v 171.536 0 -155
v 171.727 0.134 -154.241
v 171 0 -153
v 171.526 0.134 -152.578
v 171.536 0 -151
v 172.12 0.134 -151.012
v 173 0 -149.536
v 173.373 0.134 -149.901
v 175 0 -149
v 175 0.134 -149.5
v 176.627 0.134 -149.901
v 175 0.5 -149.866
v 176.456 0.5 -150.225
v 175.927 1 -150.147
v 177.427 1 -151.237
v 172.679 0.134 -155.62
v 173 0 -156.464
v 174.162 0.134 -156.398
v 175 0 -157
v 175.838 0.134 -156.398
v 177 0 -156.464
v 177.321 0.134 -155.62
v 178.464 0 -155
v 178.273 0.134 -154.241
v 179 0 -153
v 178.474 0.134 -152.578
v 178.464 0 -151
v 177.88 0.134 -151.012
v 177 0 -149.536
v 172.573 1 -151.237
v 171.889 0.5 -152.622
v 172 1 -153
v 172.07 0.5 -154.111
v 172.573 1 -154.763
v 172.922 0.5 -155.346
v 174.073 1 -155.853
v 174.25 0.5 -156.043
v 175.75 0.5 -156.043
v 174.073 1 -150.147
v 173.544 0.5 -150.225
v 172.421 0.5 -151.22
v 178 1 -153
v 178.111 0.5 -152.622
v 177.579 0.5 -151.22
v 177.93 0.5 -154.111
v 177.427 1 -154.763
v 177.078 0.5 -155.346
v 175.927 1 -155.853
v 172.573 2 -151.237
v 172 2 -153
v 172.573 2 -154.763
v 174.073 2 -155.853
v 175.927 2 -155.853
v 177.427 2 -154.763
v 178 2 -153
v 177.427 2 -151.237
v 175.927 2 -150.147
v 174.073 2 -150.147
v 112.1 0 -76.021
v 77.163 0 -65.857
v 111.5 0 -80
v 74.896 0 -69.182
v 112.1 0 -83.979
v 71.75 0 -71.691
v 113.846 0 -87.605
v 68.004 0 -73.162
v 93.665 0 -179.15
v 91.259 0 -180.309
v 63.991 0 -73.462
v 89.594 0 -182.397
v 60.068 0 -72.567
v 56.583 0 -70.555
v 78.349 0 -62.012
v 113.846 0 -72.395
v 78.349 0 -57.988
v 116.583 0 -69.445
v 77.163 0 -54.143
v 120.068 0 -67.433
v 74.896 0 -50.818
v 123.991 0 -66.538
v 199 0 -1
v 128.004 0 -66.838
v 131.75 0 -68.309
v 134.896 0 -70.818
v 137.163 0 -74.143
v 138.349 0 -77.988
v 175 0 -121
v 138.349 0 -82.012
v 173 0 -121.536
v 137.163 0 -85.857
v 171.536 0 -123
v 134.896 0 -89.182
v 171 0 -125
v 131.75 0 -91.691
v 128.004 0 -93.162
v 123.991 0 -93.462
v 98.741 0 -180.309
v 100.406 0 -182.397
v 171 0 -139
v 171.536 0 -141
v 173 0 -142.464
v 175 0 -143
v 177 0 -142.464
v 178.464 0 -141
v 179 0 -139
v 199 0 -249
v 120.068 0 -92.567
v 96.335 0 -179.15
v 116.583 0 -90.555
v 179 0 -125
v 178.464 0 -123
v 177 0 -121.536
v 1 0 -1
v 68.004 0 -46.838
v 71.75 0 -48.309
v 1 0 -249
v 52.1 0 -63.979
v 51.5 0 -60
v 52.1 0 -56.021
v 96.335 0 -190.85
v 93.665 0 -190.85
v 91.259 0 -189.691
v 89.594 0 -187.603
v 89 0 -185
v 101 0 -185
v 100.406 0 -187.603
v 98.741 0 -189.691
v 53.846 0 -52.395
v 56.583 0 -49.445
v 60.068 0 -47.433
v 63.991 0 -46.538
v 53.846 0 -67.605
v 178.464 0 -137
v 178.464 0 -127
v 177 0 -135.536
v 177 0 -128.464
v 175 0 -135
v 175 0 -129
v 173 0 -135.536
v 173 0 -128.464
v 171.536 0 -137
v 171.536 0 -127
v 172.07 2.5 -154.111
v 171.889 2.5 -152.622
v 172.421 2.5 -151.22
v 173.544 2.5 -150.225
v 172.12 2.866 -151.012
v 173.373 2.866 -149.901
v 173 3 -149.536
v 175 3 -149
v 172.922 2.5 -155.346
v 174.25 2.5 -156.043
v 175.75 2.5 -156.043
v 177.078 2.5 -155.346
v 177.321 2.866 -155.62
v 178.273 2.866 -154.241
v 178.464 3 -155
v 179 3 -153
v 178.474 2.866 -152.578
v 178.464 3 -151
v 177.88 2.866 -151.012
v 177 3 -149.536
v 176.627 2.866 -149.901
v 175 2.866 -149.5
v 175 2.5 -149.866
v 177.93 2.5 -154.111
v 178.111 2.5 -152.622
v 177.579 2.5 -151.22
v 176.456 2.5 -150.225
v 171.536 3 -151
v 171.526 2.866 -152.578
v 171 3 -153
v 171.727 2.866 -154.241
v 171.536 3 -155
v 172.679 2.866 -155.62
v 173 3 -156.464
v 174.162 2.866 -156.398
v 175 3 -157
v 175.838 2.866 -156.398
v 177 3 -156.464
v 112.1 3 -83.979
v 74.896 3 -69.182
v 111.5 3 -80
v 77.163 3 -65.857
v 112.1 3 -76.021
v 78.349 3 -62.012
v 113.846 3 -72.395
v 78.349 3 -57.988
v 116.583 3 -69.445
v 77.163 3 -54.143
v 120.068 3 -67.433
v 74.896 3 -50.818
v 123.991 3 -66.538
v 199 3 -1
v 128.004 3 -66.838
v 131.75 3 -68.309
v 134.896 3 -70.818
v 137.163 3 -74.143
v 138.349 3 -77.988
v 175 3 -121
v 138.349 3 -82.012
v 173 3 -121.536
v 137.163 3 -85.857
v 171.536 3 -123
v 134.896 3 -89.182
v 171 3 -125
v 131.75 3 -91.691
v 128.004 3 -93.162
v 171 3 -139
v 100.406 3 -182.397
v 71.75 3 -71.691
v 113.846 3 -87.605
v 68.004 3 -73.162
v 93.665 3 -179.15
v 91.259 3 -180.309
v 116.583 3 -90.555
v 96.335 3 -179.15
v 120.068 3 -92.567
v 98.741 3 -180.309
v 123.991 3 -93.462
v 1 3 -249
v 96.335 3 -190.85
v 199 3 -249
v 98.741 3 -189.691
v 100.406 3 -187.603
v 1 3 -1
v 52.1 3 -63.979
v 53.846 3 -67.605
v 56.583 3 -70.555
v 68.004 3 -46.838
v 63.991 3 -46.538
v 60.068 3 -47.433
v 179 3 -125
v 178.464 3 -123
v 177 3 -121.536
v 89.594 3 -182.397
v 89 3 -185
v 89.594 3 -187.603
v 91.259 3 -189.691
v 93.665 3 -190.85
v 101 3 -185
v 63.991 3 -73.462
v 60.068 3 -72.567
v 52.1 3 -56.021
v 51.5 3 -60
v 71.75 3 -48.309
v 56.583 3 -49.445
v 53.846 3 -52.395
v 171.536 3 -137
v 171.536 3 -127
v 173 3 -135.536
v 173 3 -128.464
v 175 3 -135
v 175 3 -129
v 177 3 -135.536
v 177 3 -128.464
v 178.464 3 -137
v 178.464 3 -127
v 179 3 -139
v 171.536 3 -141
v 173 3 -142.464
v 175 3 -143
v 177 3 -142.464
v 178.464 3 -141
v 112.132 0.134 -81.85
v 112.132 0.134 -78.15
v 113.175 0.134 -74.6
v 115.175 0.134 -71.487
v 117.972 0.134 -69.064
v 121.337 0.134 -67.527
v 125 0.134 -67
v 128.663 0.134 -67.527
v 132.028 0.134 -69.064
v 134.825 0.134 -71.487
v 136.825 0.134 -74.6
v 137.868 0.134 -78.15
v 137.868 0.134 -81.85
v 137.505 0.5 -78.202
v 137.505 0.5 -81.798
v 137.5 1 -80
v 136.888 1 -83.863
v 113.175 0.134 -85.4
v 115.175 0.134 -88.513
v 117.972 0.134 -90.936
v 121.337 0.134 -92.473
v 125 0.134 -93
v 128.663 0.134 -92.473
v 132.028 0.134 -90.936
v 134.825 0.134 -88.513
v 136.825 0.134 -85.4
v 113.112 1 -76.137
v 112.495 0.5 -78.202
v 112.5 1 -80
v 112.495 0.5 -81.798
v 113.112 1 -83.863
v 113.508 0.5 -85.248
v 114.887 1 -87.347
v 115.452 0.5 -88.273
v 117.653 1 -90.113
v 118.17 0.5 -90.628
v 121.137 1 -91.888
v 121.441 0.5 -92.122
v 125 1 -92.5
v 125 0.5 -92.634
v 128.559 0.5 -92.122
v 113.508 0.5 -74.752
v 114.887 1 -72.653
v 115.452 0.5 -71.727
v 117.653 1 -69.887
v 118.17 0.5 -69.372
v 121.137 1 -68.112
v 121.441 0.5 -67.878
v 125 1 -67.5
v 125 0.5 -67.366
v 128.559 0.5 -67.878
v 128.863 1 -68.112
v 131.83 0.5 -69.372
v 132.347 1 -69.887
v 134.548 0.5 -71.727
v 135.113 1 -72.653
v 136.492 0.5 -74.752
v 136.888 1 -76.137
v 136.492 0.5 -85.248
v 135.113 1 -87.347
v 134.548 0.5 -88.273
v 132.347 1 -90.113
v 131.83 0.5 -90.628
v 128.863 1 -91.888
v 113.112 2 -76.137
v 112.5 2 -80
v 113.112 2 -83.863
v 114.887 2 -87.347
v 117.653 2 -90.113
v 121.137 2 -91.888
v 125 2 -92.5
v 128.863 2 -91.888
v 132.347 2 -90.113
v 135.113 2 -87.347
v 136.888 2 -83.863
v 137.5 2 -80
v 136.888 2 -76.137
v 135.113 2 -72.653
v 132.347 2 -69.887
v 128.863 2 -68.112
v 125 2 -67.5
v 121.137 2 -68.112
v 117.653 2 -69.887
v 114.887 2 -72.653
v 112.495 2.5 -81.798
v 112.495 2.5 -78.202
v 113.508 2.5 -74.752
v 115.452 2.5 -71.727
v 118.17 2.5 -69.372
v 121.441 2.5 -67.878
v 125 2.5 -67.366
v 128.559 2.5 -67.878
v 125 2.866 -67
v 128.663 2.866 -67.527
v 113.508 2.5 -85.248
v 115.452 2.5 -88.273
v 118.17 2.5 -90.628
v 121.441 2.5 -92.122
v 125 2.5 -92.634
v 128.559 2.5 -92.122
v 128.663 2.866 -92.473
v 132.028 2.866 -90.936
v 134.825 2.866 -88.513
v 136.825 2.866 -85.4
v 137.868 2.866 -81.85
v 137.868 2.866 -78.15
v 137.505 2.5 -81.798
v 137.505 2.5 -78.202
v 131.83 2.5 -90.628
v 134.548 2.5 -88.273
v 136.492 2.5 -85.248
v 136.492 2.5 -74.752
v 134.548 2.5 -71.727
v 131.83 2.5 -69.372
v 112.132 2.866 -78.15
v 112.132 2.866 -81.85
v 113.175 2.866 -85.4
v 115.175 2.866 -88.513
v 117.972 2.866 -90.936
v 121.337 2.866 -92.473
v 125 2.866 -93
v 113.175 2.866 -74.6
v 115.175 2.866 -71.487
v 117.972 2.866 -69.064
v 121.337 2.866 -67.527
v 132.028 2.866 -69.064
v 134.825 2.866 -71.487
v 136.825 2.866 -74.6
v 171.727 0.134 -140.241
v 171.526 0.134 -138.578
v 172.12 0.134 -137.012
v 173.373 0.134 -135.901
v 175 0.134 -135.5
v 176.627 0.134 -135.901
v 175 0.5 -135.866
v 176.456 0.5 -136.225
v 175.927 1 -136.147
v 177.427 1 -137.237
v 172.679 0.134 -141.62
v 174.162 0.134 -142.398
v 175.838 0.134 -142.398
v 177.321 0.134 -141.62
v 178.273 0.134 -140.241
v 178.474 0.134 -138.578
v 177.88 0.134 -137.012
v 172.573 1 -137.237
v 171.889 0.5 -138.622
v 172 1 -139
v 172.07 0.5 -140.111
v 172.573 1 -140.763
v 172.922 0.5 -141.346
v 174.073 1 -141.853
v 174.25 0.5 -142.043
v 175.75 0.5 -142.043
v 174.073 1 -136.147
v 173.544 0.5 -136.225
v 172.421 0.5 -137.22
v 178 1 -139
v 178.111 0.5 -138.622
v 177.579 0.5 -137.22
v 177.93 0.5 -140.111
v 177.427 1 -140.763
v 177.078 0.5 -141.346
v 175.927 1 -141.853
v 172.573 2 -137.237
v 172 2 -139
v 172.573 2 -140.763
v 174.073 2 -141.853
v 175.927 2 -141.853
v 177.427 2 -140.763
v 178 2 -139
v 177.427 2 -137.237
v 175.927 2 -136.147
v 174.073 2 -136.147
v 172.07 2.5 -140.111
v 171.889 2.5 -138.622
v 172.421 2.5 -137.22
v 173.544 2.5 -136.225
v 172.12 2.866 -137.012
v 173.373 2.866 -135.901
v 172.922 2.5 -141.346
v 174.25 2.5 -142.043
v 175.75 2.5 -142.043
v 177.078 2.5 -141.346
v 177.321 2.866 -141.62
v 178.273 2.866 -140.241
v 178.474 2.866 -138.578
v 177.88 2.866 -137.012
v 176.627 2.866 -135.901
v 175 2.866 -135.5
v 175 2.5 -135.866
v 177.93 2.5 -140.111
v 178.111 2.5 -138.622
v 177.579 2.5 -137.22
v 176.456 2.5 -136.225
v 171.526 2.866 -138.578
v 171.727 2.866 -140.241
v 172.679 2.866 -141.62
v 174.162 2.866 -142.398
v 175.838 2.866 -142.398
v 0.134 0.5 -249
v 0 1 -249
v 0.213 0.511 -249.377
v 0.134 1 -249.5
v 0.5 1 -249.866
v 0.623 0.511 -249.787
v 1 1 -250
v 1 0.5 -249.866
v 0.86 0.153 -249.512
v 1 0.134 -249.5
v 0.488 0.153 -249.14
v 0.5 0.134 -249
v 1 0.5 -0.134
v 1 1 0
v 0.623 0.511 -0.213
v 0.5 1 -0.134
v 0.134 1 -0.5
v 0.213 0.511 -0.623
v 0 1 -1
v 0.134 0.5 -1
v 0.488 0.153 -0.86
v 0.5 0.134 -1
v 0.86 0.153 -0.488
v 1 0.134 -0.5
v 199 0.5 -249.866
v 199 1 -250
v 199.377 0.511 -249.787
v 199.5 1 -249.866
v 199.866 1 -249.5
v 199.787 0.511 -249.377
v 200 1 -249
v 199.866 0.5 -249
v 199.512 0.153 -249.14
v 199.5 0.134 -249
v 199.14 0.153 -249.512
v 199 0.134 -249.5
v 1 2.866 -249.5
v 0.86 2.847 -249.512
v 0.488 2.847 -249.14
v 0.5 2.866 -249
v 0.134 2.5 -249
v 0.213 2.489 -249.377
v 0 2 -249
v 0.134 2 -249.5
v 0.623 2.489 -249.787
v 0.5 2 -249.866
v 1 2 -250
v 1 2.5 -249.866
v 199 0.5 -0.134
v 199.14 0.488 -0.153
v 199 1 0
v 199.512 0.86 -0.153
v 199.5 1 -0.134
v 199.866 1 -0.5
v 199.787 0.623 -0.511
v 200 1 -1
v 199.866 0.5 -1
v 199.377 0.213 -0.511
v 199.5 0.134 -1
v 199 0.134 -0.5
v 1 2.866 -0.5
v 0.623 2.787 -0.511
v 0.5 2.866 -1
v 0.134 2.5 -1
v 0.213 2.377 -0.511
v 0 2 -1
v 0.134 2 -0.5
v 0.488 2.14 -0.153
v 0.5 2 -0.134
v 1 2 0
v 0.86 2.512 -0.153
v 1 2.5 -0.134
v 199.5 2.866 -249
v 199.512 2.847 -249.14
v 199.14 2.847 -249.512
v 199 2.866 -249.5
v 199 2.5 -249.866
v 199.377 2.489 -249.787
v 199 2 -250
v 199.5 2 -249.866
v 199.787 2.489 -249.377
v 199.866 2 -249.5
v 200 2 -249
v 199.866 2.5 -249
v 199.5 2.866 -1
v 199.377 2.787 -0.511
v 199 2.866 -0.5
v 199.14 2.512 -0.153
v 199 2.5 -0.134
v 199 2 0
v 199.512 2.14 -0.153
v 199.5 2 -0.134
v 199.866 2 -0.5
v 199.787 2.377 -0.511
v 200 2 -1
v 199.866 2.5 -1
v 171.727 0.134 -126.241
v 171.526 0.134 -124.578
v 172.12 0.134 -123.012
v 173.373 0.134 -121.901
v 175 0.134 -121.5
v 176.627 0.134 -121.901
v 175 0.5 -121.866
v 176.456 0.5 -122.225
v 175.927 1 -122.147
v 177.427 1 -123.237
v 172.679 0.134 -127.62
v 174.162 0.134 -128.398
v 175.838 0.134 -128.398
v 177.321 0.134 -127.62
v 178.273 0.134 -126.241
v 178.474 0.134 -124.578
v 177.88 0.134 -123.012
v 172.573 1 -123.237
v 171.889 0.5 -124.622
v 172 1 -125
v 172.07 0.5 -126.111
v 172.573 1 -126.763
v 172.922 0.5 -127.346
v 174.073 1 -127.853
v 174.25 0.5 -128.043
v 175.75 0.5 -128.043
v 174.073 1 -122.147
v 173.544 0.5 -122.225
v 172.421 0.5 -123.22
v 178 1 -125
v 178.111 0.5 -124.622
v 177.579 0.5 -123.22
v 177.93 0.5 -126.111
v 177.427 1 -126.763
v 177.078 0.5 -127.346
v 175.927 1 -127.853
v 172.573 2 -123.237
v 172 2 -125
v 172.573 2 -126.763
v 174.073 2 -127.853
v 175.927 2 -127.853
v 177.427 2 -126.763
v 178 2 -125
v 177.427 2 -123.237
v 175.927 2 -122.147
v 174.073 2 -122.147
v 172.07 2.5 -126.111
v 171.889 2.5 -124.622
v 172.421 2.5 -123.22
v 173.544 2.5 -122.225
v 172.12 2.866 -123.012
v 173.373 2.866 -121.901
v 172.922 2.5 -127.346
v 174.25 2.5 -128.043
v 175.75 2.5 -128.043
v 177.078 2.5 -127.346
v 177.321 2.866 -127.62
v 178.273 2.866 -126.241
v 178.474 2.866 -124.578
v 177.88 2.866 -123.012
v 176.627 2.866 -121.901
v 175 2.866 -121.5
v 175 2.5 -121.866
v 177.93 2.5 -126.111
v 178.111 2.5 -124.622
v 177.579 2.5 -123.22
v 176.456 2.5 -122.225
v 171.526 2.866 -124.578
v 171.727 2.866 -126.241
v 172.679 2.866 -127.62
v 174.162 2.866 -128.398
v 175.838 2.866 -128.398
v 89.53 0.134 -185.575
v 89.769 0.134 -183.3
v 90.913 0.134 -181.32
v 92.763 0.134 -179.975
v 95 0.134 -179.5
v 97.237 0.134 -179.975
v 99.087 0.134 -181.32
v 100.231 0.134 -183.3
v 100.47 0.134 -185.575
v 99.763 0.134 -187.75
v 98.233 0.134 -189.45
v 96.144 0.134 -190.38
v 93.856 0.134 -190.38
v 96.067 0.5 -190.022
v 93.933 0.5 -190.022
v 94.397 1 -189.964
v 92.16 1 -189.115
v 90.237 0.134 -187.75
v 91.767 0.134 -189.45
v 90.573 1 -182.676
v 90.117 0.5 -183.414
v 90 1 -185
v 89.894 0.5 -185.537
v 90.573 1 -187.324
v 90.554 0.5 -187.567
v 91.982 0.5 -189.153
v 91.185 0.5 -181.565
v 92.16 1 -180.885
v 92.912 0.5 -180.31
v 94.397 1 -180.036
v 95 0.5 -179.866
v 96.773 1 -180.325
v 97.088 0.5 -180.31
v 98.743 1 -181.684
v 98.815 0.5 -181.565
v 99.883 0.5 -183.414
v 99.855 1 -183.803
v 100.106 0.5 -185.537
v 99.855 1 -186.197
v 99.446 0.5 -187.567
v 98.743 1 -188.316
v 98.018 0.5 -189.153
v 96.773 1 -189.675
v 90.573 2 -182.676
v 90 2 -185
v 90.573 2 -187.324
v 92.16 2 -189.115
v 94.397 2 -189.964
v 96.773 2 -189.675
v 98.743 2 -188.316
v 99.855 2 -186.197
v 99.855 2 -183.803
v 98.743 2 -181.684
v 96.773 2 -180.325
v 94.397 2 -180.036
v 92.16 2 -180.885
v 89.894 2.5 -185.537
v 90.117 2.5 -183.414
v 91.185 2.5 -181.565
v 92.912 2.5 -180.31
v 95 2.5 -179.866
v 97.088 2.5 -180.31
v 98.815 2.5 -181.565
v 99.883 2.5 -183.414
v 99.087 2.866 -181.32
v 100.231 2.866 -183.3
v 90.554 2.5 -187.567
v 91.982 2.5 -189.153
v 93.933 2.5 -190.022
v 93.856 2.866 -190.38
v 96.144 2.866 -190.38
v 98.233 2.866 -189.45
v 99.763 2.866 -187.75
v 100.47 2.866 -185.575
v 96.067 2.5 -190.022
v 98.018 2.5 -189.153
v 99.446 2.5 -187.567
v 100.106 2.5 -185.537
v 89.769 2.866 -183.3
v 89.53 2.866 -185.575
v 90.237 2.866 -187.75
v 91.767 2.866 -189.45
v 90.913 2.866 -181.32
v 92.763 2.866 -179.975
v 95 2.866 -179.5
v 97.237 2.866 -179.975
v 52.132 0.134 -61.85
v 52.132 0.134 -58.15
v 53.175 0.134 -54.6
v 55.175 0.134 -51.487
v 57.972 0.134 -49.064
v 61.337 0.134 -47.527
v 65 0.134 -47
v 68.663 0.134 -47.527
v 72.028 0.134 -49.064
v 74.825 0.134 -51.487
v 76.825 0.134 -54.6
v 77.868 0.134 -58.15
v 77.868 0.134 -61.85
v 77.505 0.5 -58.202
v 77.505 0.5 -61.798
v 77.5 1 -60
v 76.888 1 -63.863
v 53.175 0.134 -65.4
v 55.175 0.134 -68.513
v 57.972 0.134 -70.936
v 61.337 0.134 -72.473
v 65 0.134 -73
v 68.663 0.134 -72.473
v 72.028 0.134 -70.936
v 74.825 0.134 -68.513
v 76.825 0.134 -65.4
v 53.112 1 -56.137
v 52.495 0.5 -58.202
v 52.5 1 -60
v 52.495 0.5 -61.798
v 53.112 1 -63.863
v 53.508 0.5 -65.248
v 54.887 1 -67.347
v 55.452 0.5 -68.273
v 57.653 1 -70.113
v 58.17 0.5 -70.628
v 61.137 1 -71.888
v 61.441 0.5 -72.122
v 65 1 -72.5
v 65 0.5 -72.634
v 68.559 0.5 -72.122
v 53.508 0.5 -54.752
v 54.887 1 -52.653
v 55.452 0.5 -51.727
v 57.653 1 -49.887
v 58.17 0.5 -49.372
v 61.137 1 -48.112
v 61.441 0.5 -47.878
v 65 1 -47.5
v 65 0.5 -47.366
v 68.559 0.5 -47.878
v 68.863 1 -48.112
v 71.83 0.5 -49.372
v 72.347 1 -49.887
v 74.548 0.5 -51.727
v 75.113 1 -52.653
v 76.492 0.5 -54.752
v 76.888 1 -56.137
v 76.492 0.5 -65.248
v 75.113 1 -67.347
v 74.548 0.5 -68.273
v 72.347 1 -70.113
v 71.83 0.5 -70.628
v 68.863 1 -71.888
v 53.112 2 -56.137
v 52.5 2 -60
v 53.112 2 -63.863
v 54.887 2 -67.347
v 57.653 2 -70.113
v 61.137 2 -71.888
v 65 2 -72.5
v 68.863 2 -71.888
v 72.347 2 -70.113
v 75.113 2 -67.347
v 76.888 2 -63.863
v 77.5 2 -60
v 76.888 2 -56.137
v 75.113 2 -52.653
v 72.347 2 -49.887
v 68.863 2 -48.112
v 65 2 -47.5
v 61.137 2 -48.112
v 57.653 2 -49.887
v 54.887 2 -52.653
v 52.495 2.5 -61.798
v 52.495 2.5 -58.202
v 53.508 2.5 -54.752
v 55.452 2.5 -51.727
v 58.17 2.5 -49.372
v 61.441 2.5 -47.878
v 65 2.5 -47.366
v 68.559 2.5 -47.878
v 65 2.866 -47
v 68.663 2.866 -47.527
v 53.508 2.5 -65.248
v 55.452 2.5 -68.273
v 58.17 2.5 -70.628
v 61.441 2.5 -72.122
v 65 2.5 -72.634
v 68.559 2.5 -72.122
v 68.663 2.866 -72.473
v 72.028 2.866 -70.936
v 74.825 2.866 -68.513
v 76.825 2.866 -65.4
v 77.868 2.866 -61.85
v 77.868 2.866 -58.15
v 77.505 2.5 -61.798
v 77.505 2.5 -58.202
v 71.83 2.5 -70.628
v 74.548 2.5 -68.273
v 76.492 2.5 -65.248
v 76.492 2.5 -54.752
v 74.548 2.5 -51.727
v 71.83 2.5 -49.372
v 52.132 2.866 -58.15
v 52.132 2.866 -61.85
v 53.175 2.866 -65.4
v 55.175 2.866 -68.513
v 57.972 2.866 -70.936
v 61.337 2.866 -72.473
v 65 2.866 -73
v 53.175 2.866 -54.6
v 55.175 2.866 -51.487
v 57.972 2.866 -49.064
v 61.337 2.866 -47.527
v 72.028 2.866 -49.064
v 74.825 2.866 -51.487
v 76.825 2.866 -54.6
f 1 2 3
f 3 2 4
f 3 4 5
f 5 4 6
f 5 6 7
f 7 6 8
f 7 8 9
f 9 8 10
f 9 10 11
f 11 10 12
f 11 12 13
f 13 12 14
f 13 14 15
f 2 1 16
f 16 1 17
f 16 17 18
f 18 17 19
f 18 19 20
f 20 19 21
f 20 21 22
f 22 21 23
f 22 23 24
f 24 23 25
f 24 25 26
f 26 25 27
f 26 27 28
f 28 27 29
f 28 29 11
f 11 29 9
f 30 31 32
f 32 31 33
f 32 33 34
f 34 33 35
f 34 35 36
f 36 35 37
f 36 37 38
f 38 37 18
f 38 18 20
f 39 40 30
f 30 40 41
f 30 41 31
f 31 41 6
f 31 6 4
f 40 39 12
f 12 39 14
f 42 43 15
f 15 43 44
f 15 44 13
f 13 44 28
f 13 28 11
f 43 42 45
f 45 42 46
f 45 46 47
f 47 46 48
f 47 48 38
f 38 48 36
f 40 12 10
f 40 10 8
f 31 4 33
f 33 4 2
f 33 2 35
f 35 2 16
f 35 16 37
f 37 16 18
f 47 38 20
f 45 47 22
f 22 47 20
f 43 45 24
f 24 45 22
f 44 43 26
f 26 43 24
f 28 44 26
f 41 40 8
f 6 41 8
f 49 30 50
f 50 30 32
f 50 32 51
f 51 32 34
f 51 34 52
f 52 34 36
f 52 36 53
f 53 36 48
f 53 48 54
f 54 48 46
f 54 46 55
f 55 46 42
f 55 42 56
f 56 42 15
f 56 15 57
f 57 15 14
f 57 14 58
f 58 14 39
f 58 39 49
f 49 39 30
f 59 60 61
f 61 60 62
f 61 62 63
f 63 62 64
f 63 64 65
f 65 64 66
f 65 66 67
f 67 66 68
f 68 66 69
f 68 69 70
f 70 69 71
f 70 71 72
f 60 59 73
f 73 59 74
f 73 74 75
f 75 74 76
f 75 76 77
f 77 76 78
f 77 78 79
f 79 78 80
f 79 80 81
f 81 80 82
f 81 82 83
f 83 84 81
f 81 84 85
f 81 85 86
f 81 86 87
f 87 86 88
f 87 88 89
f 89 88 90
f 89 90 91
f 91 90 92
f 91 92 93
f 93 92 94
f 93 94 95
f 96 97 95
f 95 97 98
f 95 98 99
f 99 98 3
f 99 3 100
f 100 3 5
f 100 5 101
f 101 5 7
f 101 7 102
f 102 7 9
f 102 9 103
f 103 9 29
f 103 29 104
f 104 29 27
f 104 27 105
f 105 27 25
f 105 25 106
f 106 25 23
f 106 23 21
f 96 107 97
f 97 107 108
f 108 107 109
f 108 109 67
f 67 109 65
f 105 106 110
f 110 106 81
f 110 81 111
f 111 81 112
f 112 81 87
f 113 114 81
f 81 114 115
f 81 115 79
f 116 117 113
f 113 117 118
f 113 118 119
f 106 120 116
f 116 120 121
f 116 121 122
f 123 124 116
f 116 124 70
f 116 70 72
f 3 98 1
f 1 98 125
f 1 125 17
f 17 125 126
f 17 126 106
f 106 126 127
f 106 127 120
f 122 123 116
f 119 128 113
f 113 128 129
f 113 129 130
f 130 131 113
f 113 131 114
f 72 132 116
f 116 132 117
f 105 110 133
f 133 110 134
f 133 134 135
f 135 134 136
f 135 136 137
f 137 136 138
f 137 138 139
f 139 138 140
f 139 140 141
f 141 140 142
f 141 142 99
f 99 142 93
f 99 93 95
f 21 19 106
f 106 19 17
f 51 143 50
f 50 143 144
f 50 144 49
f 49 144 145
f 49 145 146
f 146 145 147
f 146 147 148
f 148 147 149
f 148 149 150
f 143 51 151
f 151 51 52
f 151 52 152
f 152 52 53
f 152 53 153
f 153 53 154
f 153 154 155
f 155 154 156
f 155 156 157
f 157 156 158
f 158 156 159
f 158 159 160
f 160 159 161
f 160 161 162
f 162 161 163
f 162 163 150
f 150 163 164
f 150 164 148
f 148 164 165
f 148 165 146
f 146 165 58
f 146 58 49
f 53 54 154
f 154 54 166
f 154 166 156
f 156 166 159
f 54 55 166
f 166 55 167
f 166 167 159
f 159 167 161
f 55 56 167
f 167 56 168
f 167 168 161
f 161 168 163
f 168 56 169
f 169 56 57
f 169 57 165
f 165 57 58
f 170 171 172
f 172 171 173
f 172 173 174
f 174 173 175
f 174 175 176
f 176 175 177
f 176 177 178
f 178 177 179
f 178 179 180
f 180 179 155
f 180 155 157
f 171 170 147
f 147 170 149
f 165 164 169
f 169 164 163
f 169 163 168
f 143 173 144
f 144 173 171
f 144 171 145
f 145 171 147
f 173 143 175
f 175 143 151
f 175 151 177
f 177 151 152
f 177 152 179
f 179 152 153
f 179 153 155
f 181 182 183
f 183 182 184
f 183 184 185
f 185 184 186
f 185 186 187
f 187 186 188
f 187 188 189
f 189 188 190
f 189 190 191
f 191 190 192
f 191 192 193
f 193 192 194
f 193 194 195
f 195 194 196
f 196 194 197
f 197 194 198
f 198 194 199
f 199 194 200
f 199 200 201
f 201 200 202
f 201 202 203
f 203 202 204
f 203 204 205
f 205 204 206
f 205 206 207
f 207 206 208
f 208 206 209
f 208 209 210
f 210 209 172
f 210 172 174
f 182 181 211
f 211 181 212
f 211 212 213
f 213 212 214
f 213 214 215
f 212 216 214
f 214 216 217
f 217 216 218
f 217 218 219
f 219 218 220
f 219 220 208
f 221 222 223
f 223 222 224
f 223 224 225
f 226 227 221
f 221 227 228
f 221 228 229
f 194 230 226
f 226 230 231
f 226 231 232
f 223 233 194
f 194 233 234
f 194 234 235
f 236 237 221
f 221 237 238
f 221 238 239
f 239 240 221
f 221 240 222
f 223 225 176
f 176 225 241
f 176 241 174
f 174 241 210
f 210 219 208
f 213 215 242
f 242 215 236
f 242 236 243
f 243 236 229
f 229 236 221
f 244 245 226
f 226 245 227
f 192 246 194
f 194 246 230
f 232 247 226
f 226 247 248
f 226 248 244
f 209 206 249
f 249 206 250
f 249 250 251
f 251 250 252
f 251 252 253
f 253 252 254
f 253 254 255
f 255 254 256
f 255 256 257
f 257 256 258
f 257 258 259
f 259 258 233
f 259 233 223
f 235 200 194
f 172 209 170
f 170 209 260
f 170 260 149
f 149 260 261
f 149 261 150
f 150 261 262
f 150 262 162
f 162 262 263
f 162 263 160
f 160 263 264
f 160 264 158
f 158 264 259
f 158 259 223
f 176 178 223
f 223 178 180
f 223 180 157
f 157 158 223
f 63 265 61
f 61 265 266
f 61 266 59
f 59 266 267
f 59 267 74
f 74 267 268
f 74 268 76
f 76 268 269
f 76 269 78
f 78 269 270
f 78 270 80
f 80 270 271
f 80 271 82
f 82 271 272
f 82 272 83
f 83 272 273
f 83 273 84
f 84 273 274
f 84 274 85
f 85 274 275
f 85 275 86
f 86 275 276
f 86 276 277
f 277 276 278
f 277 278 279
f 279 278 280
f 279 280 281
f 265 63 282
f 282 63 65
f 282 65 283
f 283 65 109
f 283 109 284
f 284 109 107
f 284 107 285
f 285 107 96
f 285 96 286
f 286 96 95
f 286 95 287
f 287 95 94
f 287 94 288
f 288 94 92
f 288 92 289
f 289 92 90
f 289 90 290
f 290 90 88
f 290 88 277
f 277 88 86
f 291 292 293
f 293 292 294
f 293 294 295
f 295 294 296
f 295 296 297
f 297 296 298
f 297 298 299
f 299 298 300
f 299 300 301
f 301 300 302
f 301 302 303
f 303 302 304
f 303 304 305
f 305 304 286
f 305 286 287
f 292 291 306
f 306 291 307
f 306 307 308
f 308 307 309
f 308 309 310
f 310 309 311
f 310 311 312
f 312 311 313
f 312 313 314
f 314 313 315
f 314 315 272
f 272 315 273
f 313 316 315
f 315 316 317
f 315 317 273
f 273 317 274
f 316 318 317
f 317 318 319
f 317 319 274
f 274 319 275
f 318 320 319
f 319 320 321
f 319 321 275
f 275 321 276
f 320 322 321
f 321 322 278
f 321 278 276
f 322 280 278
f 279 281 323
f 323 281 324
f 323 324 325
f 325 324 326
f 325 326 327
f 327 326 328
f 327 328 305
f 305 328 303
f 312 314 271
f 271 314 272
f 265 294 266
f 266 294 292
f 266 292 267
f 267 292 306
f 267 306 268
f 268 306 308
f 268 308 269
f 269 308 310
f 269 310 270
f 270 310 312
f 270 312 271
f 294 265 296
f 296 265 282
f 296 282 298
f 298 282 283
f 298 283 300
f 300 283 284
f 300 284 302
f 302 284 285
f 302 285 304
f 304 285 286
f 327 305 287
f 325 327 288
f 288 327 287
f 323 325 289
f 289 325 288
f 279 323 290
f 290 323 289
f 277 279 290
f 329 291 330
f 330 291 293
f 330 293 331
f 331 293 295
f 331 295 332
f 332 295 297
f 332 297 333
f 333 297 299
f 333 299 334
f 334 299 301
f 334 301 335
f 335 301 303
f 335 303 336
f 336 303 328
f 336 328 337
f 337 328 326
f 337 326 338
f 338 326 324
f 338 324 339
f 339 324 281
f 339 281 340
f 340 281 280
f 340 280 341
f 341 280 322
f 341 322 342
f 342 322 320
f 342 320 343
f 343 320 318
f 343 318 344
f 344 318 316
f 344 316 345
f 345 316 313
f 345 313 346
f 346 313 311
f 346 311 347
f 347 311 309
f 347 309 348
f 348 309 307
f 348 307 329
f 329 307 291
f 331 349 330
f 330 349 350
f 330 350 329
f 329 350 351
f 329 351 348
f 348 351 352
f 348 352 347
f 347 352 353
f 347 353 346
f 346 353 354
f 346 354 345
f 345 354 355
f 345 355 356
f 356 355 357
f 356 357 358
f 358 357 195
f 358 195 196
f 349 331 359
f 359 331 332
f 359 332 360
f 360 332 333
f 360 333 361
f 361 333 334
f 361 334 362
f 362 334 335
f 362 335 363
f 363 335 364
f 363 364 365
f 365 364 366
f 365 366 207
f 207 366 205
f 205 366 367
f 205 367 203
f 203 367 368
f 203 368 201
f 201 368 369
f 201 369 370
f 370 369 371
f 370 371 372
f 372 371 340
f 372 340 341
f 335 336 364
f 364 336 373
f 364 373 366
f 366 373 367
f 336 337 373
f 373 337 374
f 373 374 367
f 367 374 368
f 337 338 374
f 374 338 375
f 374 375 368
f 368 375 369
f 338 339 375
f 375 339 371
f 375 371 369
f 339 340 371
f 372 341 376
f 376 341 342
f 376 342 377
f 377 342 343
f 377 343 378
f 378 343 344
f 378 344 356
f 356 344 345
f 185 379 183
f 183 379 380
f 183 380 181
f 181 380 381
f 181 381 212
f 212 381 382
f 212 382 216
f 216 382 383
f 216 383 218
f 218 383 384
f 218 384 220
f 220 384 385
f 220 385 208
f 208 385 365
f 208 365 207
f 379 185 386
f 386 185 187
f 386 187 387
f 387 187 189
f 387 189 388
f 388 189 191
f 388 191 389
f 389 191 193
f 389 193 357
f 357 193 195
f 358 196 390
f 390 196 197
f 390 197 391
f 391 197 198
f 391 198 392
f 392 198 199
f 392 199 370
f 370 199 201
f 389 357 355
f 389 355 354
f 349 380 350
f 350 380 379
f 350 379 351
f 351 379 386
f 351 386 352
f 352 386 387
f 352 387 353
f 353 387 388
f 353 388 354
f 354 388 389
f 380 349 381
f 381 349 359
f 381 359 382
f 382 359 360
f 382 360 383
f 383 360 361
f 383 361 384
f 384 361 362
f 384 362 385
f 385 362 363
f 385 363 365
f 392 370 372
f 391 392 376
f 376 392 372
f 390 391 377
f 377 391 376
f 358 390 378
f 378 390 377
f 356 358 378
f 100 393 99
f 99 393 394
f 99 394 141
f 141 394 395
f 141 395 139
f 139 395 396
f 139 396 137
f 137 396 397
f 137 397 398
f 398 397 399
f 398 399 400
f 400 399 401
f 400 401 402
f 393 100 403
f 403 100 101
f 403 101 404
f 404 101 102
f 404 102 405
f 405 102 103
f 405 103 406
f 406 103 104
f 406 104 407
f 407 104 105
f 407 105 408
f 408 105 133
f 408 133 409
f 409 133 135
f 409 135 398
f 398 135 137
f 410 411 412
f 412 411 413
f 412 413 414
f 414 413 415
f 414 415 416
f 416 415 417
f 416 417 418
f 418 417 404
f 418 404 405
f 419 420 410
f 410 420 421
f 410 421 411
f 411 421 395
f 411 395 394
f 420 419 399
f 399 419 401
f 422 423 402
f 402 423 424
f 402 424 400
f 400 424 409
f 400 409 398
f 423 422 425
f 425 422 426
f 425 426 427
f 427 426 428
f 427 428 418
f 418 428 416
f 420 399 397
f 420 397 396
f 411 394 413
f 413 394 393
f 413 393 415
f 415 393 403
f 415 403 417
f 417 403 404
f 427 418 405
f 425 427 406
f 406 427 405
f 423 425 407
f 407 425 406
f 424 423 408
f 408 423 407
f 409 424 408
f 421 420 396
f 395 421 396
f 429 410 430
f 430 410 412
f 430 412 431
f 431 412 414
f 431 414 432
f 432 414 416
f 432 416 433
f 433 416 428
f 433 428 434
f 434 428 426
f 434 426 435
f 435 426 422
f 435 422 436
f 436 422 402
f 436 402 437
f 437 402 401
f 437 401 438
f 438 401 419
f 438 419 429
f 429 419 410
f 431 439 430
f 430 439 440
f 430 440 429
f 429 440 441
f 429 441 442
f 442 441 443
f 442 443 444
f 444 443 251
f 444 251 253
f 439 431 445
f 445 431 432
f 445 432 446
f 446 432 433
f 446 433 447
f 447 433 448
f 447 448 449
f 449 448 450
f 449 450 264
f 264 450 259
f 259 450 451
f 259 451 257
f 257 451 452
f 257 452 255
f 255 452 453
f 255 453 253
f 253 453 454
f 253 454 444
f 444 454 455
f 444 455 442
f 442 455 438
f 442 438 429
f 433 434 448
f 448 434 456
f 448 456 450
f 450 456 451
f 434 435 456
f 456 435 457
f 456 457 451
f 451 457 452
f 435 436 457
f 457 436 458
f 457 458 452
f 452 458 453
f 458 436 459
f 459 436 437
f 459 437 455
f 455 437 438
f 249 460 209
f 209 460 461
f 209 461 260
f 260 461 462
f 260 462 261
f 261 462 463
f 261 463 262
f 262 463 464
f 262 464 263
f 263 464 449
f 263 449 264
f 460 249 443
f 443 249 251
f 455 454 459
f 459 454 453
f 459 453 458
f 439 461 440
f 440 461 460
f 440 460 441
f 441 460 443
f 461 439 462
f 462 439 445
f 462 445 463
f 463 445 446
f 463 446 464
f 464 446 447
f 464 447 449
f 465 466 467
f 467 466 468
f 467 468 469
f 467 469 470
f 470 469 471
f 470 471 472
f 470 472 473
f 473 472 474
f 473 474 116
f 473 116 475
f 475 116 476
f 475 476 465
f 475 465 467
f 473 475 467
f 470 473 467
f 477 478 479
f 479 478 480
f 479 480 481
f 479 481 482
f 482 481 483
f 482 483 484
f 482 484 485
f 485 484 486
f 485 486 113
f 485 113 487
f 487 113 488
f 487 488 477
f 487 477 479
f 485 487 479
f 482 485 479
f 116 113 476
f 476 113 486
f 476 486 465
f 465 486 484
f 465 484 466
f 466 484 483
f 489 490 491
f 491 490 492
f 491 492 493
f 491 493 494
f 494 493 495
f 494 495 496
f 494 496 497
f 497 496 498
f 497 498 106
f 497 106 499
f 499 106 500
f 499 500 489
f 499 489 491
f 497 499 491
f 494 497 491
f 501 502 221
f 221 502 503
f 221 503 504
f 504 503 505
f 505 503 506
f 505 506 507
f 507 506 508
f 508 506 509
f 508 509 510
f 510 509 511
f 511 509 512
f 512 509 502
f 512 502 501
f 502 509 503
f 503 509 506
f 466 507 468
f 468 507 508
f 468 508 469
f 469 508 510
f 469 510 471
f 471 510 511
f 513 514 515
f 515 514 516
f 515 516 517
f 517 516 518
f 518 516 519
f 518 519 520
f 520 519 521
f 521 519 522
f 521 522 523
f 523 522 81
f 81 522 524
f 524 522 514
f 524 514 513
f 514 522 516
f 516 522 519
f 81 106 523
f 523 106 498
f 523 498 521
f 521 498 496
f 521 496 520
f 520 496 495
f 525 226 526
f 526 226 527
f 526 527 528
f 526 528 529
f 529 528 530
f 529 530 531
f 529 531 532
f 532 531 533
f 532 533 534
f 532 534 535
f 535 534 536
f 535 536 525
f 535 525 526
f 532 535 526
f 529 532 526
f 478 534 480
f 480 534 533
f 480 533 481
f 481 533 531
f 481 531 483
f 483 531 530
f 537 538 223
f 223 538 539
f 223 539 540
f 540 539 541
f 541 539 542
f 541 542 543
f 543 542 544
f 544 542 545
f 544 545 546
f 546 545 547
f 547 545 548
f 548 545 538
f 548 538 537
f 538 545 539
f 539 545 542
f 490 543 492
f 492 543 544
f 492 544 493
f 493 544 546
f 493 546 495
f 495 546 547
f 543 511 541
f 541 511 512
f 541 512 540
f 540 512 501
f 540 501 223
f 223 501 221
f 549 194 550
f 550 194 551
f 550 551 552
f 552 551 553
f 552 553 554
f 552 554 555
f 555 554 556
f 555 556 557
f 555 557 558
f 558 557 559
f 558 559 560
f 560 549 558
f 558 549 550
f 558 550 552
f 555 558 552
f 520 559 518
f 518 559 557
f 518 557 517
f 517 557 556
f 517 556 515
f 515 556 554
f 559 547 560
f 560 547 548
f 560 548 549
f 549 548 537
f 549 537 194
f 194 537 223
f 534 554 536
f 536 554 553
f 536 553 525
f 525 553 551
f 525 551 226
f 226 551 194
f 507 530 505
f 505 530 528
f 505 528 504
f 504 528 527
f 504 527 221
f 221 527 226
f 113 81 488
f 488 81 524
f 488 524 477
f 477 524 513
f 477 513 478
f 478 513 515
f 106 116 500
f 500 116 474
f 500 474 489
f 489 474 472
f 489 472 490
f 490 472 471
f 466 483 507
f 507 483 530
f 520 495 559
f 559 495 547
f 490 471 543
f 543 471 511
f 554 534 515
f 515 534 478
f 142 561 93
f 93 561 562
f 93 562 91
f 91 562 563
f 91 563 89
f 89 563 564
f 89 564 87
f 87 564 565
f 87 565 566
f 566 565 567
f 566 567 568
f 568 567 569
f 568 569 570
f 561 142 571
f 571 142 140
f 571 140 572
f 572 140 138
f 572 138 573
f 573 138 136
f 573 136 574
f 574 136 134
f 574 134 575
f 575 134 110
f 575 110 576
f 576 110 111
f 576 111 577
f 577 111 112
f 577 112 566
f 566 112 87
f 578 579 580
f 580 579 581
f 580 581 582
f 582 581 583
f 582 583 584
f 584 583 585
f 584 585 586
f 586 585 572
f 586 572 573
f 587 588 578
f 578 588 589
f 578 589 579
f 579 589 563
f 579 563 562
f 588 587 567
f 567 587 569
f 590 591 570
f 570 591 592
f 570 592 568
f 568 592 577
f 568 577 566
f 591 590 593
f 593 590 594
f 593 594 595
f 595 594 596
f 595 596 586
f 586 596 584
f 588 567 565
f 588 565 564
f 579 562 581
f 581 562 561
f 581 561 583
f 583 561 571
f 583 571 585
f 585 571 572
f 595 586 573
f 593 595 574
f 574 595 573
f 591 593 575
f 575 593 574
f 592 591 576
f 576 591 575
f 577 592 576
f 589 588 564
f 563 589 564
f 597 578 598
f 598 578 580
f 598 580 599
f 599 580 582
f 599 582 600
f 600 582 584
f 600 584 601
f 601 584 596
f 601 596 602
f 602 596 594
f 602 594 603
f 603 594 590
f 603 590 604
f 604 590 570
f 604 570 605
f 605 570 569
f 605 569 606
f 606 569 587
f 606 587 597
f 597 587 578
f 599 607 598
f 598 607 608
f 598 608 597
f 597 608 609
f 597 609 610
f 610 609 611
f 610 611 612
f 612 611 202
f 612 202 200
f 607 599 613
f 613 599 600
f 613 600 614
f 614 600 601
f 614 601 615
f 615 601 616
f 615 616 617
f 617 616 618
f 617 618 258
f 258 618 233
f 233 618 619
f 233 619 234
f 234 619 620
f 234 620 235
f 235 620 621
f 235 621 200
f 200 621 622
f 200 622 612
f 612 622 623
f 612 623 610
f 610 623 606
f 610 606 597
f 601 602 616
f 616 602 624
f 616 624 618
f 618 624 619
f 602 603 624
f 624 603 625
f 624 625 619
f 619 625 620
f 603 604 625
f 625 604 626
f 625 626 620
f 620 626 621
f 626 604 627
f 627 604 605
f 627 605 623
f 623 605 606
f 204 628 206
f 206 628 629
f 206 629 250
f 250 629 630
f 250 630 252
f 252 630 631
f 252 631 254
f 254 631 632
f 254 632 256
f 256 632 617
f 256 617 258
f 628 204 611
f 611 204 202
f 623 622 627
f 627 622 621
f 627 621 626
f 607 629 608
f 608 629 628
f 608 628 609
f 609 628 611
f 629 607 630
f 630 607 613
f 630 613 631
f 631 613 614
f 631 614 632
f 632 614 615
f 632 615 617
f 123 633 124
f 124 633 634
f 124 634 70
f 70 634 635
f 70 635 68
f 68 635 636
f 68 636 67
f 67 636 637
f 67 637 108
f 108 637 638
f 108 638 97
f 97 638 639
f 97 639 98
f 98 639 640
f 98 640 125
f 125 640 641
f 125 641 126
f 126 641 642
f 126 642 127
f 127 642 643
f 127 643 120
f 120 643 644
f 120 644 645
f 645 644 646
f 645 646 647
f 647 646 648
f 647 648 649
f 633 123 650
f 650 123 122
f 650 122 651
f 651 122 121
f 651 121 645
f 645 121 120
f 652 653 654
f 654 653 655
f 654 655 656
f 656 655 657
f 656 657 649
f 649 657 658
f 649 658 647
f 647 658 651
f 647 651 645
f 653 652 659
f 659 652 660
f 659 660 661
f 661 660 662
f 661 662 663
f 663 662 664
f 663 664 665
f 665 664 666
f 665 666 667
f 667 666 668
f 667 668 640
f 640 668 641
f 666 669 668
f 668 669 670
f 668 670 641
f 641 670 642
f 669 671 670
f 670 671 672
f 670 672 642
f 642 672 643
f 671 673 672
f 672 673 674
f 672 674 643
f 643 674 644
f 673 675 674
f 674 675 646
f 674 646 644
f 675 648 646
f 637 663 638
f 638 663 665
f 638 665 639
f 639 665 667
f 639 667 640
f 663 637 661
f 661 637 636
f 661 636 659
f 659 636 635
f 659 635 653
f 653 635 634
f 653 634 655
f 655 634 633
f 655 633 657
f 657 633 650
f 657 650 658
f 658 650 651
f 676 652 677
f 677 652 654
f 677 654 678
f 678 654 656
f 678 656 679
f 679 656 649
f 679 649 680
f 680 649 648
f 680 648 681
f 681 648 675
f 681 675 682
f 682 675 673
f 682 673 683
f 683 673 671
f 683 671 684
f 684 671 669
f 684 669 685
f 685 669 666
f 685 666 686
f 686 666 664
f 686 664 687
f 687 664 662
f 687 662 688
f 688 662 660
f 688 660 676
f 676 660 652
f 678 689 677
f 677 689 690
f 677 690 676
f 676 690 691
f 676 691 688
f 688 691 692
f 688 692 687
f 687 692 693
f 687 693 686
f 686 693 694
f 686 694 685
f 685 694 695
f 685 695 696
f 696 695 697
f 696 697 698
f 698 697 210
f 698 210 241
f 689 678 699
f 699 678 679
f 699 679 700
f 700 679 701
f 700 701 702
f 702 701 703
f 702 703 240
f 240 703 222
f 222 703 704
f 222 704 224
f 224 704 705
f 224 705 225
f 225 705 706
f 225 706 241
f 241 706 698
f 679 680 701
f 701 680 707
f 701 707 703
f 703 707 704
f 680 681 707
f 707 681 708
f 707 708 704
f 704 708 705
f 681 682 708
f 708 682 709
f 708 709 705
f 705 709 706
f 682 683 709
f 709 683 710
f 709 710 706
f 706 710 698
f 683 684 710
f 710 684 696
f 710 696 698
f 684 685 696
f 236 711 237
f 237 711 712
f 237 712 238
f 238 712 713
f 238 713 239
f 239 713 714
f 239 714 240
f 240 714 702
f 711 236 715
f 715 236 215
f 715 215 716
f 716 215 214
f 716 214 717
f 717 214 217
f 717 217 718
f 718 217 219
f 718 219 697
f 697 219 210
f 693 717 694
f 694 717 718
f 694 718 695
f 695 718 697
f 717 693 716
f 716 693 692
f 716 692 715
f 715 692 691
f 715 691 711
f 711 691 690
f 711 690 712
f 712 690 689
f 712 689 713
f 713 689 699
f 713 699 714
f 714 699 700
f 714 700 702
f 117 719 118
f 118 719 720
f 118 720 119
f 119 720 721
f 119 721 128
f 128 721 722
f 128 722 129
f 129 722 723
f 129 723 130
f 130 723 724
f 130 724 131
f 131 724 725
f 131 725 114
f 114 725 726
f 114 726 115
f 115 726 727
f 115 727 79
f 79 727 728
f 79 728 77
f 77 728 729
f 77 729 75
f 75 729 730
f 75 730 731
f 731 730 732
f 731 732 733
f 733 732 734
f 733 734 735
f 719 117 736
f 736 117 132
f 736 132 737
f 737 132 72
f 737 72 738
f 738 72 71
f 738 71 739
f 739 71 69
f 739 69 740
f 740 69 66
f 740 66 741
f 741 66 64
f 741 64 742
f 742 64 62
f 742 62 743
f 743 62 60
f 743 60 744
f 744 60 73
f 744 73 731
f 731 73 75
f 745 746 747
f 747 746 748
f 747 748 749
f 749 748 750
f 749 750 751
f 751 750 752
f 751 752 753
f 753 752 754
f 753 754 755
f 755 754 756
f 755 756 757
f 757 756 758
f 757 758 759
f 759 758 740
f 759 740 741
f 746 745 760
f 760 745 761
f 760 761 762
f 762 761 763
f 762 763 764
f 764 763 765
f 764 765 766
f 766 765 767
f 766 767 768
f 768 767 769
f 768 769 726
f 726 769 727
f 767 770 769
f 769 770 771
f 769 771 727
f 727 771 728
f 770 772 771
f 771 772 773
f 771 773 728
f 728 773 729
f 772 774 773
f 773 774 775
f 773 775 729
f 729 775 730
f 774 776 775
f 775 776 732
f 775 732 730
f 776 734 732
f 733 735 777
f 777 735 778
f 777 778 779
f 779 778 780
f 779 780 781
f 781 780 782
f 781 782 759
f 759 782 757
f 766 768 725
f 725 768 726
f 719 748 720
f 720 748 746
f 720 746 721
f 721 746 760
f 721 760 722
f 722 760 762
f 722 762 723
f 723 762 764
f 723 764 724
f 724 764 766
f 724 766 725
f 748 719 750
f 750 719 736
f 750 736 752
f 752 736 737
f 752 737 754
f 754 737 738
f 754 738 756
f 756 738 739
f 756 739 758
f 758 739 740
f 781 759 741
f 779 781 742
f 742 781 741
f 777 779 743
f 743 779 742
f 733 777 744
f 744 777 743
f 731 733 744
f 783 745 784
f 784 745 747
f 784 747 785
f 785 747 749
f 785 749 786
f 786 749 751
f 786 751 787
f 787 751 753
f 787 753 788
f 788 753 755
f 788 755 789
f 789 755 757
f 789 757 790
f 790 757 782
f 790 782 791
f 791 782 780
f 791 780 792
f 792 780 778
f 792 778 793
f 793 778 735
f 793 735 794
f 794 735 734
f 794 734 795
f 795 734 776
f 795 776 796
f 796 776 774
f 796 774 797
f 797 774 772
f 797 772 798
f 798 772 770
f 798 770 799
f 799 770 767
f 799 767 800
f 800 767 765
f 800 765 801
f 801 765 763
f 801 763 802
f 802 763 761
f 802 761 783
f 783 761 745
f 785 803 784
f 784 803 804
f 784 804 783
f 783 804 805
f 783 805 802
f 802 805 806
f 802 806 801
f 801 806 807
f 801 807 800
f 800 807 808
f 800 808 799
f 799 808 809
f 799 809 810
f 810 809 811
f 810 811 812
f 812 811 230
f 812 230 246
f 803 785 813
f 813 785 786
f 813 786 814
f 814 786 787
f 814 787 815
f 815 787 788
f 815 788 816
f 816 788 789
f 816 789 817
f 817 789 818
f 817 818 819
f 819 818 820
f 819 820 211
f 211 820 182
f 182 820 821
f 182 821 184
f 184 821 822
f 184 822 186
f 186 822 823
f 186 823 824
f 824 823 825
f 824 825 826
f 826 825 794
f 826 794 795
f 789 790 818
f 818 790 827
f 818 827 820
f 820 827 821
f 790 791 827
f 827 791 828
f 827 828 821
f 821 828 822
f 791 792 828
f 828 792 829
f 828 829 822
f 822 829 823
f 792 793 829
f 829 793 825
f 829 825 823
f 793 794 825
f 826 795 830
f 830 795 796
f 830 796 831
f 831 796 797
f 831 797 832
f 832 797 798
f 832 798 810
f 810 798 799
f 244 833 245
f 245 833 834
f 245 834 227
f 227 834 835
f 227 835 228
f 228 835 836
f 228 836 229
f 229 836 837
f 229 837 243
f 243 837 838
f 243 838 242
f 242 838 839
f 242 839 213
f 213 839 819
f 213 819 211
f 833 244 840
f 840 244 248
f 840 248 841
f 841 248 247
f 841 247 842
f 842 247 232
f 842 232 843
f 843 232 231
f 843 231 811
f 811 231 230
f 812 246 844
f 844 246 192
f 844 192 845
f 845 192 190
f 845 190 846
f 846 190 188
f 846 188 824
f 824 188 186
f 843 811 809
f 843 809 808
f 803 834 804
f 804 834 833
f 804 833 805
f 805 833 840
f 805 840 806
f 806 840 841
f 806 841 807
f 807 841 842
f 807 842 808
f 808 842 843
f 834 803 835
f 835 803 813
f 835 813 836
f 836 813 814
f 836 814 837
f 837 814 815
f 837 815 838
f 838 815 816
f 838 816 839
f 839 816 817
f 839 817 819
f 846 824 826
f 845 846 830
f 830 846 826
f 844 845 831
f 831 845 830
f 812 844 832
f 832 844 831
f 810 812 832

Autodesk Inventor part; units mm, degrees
ref_plane "YZ Plane" through (0, 0, 0) normal (1, 0, 0) x (0, 1, 0)
ref_plane "XZ Plane" through (0, 0, 0) normal (0, 1, 0) x (-1, 0, 0)
ref_plane "XY Plane" through (0, 0, 0) normal (0, 0, 1) x (1, 0, 0)
sketch "page_lines" plane through (0, 0, 0) normal (0, 1, 0) x (-1, 0, 0)
  line L0 (0, 0) -> (-200, 0)
  line L1 (-200, 0) -> (-200, -250)
  line L2 (-200, -250) -> (0, -250)
  line L3 (0, -250) -> (0, 0)
  circle A0 centre (-65, -60) radius 6
  circle A1 centre (-125, -80) radius 6
  circle A2 centre (-65, -60) radius 12.5
  circle A3 centre (-65, -60) radius 8.5
  circle A4 centre (-125, -80) radius 8.5
  circle A5 centre (-125, -80) radius 12.5
  circle A6 centre (-175, -125) radius 3
  line L4 (-175, -125) -> (-175, -209)
  line L5 (-175, -125) -> (-91, -125) construction
  circle A7 centre (-175, -139) radius 3
  circle A8 centre (-175, -153) radius 3
  circle A9 centre (-175, -167) radius 3
  circle A10 centre (-175, -181) radius 3
  circle A11 centre (-175, -195) radius 3
  circle A12 centre (-175, -209) radius 3
  circle A13 centre (-95, -185) radius 2.5
  circle A14 centre (-95, -185) radius 5
  point P0 (-200, -125)
  dimension "d0" = 200
  dimension "d1" = 250
  dimension "d2" = 12
  dimension "d3" = 12
  dimension "d4" = 25
  dimension "d5" = 17
  dimension "d6" = 17
  dimension "d7" = 25
  dimension "d8" = 75
  dimension "d9" = 80
  dimension "d10" = 65
  dimension "d11" = 60
  dimension "d12" = 6
  dimension "d13" = 84
  dimension "d14" = 90
  dimension "d15" = 25
  dimension "d16" = 125
  dimension "d19" = 14
  dimension "d24" = 5
  dimension "d25" = 10
  dimension "d26" = 65
  dimension "d27" = 95
extrude "or" add sketch "page_lines" along normal blind 3 contours L3 L2 L1 L0 | A9 L4 | L4 A9 | A10 L4 | L4 A10 | A11 L4 | L4 A11 | A12
fillet "Fillet1" radius 1 24 edges at (77.5, 3, -60) (77.5, 0, -60) (100, 3, -185) (100, 0, -185) (178, 3, -125) (178, 0, -125) (200, 3, -125) (200, 0, -125) (100, 0, 0) (100, 3, 0) (200, 1.5, 0) (0, 1.5, 0) (0, 3, -125) (0, 0, -125) (0, 1.5, -250) (100, 3, -250) (100, 0, -250) (200, 1.5, -250) (178, 3, -139) (178, 0, -139) (137.5, 3, -80) (137.5, 0, -80) (178, 3, -153) (178, 0, -153)
properties part number "pages_or"
